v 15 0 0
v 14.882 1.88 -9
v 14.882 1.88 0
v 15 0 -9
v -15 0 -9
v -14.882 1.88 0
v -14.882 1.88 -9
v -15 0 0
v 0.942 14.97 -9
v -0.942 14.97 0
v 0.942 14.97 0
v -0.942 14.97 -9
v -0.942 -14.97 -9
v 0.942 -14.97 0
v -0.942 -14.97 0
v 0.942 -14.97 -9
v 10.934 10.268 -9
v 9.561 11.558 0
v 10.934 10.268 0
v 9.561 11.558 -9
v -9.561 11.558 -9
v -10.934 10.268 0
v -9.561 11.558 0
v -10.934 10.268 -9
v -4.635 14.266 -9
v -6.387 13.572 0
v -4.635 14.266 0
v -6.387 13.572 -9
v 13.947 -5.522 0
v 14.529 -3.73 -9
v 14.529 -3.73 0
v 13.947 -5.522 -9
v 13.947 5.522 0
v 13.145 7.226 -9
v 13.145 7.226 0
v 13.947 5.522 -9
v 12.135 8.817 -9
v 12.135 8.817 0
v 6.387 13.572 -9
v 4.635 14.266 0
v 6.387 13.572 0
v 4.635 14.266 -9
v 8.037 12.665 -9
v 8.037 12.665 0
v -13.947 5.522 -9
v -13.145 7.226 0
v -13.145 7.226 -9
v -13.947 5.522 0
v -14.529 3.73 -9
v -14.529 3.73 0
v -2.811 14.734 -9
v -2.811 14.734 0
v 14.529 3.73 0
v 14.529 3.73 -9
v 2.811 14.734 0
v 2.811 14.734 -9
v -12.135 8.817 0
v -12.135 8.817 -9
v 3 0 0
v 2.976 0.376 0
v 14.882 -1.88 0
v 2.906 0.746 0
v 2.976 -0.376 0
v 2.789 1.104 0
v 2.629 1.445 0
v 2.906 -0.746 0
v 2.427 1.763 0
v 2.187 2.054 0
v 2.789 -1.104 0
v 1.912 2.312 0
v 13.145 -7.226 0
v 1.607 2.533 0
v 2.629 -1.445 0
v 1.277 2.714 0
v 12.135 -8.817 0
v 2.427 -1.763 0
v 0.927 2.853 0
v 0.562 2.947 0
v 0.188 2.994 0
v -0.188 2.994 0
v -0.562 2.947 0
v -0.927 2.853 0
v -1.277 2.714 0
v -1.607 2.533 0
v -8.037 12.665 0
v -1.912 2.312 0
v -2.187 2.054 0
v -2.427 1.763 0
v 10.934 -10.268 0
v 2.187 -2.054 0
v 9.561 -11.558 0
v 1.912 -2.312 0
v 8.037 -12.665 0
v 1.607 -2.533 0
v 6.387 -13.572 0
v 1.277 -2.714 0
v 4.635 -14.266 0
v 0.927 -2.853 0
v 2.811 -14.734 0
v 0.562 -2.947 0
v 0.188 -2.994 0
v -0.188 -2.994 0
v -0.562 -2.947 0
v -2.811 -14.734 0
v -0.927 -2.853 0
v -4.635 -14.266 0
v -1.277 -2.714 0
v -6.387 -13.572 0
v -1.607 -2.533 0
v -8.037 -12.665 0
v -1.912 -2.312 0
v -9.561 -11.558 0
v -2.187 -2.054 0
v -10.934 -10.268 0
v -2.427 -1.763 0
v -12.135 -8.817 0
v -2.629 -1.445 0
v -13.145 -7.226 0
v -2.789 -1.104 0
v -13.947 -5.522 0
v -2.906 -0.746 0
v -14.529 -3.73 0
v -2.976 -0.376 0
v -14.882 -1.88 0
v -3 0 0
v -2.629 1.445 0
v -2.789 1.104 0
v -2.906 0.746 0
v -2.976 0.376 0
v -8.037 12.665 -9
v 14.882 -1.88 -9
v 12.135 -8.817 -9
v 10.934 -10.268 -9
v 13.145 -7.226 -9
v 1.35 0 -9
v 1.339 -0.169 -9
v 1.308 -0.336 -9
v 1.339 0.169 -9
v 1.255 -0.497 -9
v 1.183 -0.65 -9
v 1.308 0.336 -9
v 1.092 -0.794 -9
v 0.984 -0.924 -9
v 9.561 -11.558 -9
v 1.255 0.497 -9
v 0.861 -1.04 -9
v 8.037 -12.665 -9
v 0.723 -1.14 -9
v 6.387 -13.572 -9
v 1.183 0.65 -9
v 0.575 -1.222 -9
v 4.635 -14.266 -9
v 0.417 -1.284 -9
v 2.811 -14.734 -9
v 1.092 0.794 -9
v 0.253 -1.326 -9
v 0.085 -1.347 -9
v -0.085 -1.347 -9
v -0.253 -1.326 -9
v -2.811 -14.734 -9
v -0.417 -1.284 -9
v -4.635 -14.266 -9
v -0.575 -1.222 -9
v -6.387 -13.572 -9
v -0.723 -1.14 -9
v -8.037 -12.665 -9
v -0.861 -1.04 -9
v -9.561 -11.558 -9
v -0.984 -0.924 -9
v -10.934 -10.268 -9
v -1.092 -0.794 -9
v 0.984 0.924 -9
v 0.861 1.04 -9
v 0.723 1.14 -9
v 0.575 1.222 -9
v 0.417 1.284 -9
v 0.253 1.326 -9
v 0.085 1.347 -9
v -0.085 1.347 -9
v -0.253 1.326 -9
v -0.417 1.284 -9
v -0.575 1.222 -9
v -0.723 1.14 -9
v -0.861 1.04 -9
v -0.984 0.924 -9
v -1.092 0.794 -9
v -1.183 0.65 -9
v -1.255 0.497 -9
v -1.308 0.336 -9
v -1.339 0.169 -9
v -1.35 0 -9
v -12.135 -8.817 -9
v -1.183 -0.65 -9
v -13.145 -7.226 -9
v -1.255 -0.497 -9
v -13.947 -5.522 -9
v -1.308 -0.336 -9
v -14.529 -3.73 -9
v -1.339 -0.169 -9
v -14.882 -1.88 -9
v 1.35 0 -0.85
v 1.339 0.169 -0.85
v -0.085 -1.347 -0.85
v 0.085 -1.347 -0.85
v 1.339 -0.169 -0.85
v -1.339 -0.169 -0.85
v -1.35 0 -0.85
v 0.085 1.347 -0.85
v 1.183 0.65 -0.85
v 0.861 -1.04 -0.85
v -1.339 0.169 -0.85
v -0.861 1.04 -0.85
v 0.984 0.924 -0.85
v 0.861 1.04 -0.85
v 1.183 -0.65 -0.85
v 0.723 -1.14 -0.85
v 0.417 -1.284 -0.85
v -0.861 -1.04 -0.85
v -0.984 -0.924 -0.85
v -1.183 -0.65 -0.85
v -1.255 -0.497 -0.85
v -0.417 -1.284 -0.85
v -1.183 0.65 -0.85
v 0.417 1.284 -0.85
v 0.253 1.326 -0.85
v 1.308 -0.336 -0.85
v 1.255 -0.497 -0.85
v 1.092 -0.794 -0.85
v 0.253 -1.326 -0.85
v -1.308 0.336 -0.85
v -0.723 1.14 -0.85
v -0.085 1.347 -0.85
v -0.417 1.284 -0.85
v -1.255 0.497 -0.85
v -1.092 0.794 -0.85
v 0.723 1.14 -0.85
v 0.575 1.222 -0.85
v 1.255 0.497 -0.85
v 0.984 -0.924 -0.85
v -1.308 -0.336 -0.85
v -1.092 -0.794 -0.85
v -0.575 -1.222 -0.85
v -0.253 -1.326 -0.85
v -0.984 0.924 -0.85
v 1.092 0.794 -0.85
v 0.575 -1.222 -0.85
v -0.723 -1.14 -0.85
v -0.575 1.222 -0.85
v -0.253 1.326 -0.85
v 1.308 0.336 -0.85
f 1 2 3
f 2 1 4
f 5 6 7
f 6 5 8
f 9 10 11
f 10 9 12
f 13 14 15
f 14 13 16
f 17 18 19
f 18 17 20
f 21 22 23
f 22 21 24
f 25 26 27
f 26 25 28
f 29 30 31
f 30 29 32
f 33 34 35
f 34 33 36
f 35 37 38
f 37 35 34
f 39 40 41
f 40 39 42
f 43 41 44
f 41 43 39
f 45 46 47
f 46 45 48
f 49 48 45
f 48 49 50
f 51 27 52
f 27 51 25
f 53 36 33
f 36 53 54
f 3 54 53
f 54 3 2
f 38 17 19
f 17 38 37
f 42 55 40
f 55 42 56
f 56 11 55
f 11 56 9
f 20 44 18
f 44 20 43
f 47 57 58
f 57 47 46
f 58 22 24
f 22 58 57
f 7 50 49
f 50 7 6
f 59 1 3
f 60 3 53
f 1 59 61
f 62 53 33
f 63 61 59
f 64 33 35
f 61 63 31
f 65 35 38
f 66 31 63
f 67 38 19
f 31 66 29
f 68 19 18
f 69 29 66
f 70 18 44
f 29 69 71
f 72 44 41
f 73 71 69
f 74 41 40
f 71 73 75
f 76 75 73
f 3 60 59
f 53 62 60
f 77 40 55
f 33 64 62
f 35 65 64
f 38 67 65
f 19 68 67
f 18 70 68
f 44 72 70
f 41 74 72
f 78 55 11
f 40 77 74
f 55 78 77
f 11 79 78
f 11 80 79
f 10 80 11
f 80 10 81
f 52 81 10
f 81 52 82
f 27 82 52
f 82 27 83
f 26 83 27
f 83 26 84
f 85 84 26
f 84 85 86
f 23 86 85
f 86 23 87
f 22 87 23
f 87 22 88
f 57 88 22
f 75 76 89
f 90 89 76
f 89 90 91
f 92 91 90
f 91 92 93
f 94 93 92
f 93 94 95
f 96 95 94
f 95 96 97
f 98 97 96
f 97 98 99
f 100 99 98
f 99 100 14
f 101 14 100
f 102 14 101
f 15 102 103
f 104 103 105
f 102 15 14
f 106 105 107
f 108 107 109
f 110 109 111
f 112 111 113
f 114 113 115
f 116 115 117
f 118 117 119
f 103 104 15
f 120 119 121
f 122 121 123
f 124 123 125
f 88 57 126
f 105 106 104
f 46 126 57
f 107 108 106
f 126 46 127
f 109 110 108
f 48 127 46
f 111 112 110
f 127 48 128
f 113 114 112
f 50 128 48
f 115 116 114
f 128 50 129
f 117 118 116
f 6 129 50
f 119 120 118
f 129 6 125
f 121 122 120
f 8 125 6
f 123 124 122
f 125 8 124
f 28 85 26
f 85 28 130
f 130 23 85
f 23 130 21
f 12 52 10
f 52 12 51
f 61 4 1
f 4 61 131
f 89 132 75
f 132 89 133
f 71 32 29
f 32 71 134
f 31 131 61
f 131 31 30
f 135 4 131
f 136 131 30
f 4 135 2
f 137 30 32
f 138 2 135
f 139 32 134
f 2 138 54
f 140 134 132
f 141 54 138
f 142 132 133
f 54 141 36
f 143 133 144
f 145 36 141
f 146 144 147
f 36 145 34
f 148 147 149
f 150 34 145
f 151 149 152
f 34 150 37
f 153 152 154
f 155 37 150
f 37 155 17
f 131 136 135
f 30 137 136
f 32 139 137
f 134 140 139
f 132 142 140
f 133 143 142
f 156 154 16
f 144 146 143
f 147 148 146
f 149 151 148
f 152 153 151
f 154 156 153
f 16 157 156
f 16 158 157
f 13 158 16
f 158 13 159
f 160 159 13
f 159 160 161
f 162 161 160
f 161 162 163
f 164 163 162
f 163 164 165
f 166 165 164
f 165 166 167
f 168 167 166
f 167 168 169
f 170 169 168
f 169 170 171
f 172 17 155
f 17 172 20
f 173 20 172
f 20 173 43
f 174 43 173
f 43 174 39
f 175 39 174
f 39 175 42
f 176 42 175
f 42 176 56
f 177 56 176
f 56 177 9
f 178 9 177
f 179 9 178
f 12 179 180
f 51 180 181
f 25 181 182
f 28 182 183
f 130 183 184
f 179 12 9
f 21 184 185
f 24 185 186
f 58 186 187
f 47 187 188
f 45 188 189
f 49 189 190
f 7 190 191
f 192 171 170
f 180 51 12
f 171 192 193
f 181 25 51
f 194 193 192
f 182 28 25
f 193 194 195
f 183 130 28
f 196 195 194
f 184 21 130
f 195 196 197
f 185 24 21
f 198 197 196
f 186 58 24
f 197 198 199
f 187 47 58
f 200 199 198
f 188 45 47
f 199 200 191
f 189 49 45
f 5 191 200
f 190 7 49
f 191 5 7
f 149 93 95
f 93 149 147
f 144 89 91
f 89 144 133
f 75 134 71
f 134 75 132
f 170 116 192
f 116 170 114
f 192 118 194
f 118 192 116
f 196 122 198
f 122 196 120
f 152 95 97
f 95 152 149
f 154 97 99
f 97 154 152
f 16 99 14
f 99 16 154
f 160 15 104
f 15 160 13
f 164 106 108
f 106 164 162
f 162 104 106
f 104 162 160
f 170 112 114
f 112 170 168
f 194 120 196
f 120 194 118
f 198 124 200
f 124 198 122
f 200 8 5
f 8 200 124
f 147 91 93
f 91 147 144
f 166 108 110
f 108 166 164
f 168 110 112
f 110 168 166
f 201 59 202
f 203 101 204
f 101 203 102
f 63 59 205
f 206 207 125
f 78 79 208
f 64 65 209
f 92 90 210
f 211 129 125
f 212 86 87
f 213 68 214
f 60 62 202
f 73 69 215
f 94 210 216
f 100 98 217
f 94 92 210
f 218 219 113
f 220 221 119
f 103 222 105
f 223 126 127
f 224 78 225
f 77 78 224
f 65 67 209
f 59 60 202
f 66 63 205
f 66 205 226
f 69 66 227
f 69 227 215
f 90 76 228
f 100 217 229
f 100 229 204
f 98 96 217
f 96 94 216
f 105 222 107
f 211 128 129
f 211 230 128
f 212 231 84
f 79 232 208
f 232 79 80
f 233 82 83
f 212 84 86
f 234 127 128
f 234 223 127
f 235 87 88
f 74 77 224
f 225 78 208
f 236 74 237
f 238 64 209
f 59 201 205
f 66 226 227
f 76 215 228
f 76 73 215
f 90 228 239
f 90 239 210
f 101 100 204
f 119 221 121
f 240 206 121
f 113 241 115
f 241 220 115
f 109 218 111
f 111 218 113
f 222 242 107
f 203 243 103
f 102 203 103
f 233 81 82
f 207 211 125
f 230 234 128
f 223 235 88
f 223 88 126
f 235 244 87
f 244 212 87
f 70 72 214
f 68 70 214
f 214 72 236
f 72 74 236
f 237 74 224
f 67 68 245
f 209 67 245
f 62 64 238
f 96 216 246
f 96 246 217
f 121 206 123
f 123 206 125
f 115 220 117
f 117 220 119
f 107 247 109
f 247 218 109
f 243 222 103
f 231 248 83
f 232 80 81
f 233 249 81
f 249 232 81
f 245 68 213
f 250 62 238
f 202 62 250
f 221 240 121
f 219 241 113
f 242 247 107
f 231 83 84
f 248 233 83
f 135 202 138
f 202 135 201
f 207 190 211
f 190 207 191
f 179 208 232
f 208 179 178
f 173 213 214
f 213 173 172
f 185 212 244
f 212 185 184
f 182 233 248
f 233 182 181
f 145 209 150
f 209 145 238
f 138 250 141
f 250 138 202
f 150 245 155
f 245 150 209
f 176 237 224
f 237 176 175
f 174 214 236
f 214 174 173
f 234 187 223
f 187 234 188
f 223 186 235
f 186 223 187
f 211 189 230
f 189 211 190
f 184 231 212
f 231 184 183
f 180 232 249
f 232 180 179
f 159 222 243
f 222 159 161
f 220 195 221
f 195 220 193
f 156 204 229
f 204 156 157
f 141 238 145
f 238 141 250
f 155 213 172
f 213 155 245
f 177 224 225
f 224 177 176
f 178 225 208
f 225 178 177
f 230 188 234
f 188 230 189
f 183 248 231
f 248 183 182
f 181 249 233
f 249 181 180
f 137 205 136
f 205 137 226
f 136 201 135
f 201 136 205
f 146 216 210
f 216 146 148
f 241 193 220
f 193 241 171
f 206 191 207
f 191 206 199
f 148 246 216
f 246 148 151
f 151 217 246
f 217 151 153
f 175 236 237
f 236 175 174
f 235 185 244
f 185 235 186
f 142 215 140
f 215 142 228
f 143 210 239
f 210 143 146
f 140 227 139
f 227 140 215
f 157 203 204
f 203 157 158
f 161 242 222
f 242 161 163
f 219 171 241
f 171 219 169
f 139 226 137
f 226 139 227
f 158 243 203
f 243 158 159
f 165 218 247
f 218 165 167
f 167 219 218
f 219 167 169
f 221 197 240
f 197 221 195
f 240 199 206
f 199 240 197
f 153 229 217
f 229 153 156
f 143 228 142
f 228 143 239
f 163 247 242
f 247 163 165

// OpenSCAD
$fn = 50;


difference() {
	union() {
		translate(v = [0, 0, -9.0000000000]) {
			cylinder(h = 9, r = 15.0000000000);
		}
		translate(v = [0, 0, -9.0000000000]) {
			cylinder(h = 9, r = 2.8750000000);
		}
	}
	union() {
		translate(v = [0, 0, 0]) {
			rotate(a = [0, 0, 0]) {
				difference() {
					union() {
						#translate(v = [0, 0, -9.0000000000]) {
							cylinder(h = 9, r = 1.0000000000);
						}
						#translate(v = [0, 0, -0.8500000000]) {
							cylinder(h = 0.8500000000, r1 = 1.3500000000, r2 = 3.0000000000);
						}
						#translate(v = [0, 0, -9.0000000000]) {
							cylinder(h = 9, r = 1.3500000000);
						}
						#translate(v = [0, 0, -9.0000000000]) {
							cylinder(h = 9, r = 1.0000000000);
						}
					}
					union();
				}
			}
		}
	}
}
